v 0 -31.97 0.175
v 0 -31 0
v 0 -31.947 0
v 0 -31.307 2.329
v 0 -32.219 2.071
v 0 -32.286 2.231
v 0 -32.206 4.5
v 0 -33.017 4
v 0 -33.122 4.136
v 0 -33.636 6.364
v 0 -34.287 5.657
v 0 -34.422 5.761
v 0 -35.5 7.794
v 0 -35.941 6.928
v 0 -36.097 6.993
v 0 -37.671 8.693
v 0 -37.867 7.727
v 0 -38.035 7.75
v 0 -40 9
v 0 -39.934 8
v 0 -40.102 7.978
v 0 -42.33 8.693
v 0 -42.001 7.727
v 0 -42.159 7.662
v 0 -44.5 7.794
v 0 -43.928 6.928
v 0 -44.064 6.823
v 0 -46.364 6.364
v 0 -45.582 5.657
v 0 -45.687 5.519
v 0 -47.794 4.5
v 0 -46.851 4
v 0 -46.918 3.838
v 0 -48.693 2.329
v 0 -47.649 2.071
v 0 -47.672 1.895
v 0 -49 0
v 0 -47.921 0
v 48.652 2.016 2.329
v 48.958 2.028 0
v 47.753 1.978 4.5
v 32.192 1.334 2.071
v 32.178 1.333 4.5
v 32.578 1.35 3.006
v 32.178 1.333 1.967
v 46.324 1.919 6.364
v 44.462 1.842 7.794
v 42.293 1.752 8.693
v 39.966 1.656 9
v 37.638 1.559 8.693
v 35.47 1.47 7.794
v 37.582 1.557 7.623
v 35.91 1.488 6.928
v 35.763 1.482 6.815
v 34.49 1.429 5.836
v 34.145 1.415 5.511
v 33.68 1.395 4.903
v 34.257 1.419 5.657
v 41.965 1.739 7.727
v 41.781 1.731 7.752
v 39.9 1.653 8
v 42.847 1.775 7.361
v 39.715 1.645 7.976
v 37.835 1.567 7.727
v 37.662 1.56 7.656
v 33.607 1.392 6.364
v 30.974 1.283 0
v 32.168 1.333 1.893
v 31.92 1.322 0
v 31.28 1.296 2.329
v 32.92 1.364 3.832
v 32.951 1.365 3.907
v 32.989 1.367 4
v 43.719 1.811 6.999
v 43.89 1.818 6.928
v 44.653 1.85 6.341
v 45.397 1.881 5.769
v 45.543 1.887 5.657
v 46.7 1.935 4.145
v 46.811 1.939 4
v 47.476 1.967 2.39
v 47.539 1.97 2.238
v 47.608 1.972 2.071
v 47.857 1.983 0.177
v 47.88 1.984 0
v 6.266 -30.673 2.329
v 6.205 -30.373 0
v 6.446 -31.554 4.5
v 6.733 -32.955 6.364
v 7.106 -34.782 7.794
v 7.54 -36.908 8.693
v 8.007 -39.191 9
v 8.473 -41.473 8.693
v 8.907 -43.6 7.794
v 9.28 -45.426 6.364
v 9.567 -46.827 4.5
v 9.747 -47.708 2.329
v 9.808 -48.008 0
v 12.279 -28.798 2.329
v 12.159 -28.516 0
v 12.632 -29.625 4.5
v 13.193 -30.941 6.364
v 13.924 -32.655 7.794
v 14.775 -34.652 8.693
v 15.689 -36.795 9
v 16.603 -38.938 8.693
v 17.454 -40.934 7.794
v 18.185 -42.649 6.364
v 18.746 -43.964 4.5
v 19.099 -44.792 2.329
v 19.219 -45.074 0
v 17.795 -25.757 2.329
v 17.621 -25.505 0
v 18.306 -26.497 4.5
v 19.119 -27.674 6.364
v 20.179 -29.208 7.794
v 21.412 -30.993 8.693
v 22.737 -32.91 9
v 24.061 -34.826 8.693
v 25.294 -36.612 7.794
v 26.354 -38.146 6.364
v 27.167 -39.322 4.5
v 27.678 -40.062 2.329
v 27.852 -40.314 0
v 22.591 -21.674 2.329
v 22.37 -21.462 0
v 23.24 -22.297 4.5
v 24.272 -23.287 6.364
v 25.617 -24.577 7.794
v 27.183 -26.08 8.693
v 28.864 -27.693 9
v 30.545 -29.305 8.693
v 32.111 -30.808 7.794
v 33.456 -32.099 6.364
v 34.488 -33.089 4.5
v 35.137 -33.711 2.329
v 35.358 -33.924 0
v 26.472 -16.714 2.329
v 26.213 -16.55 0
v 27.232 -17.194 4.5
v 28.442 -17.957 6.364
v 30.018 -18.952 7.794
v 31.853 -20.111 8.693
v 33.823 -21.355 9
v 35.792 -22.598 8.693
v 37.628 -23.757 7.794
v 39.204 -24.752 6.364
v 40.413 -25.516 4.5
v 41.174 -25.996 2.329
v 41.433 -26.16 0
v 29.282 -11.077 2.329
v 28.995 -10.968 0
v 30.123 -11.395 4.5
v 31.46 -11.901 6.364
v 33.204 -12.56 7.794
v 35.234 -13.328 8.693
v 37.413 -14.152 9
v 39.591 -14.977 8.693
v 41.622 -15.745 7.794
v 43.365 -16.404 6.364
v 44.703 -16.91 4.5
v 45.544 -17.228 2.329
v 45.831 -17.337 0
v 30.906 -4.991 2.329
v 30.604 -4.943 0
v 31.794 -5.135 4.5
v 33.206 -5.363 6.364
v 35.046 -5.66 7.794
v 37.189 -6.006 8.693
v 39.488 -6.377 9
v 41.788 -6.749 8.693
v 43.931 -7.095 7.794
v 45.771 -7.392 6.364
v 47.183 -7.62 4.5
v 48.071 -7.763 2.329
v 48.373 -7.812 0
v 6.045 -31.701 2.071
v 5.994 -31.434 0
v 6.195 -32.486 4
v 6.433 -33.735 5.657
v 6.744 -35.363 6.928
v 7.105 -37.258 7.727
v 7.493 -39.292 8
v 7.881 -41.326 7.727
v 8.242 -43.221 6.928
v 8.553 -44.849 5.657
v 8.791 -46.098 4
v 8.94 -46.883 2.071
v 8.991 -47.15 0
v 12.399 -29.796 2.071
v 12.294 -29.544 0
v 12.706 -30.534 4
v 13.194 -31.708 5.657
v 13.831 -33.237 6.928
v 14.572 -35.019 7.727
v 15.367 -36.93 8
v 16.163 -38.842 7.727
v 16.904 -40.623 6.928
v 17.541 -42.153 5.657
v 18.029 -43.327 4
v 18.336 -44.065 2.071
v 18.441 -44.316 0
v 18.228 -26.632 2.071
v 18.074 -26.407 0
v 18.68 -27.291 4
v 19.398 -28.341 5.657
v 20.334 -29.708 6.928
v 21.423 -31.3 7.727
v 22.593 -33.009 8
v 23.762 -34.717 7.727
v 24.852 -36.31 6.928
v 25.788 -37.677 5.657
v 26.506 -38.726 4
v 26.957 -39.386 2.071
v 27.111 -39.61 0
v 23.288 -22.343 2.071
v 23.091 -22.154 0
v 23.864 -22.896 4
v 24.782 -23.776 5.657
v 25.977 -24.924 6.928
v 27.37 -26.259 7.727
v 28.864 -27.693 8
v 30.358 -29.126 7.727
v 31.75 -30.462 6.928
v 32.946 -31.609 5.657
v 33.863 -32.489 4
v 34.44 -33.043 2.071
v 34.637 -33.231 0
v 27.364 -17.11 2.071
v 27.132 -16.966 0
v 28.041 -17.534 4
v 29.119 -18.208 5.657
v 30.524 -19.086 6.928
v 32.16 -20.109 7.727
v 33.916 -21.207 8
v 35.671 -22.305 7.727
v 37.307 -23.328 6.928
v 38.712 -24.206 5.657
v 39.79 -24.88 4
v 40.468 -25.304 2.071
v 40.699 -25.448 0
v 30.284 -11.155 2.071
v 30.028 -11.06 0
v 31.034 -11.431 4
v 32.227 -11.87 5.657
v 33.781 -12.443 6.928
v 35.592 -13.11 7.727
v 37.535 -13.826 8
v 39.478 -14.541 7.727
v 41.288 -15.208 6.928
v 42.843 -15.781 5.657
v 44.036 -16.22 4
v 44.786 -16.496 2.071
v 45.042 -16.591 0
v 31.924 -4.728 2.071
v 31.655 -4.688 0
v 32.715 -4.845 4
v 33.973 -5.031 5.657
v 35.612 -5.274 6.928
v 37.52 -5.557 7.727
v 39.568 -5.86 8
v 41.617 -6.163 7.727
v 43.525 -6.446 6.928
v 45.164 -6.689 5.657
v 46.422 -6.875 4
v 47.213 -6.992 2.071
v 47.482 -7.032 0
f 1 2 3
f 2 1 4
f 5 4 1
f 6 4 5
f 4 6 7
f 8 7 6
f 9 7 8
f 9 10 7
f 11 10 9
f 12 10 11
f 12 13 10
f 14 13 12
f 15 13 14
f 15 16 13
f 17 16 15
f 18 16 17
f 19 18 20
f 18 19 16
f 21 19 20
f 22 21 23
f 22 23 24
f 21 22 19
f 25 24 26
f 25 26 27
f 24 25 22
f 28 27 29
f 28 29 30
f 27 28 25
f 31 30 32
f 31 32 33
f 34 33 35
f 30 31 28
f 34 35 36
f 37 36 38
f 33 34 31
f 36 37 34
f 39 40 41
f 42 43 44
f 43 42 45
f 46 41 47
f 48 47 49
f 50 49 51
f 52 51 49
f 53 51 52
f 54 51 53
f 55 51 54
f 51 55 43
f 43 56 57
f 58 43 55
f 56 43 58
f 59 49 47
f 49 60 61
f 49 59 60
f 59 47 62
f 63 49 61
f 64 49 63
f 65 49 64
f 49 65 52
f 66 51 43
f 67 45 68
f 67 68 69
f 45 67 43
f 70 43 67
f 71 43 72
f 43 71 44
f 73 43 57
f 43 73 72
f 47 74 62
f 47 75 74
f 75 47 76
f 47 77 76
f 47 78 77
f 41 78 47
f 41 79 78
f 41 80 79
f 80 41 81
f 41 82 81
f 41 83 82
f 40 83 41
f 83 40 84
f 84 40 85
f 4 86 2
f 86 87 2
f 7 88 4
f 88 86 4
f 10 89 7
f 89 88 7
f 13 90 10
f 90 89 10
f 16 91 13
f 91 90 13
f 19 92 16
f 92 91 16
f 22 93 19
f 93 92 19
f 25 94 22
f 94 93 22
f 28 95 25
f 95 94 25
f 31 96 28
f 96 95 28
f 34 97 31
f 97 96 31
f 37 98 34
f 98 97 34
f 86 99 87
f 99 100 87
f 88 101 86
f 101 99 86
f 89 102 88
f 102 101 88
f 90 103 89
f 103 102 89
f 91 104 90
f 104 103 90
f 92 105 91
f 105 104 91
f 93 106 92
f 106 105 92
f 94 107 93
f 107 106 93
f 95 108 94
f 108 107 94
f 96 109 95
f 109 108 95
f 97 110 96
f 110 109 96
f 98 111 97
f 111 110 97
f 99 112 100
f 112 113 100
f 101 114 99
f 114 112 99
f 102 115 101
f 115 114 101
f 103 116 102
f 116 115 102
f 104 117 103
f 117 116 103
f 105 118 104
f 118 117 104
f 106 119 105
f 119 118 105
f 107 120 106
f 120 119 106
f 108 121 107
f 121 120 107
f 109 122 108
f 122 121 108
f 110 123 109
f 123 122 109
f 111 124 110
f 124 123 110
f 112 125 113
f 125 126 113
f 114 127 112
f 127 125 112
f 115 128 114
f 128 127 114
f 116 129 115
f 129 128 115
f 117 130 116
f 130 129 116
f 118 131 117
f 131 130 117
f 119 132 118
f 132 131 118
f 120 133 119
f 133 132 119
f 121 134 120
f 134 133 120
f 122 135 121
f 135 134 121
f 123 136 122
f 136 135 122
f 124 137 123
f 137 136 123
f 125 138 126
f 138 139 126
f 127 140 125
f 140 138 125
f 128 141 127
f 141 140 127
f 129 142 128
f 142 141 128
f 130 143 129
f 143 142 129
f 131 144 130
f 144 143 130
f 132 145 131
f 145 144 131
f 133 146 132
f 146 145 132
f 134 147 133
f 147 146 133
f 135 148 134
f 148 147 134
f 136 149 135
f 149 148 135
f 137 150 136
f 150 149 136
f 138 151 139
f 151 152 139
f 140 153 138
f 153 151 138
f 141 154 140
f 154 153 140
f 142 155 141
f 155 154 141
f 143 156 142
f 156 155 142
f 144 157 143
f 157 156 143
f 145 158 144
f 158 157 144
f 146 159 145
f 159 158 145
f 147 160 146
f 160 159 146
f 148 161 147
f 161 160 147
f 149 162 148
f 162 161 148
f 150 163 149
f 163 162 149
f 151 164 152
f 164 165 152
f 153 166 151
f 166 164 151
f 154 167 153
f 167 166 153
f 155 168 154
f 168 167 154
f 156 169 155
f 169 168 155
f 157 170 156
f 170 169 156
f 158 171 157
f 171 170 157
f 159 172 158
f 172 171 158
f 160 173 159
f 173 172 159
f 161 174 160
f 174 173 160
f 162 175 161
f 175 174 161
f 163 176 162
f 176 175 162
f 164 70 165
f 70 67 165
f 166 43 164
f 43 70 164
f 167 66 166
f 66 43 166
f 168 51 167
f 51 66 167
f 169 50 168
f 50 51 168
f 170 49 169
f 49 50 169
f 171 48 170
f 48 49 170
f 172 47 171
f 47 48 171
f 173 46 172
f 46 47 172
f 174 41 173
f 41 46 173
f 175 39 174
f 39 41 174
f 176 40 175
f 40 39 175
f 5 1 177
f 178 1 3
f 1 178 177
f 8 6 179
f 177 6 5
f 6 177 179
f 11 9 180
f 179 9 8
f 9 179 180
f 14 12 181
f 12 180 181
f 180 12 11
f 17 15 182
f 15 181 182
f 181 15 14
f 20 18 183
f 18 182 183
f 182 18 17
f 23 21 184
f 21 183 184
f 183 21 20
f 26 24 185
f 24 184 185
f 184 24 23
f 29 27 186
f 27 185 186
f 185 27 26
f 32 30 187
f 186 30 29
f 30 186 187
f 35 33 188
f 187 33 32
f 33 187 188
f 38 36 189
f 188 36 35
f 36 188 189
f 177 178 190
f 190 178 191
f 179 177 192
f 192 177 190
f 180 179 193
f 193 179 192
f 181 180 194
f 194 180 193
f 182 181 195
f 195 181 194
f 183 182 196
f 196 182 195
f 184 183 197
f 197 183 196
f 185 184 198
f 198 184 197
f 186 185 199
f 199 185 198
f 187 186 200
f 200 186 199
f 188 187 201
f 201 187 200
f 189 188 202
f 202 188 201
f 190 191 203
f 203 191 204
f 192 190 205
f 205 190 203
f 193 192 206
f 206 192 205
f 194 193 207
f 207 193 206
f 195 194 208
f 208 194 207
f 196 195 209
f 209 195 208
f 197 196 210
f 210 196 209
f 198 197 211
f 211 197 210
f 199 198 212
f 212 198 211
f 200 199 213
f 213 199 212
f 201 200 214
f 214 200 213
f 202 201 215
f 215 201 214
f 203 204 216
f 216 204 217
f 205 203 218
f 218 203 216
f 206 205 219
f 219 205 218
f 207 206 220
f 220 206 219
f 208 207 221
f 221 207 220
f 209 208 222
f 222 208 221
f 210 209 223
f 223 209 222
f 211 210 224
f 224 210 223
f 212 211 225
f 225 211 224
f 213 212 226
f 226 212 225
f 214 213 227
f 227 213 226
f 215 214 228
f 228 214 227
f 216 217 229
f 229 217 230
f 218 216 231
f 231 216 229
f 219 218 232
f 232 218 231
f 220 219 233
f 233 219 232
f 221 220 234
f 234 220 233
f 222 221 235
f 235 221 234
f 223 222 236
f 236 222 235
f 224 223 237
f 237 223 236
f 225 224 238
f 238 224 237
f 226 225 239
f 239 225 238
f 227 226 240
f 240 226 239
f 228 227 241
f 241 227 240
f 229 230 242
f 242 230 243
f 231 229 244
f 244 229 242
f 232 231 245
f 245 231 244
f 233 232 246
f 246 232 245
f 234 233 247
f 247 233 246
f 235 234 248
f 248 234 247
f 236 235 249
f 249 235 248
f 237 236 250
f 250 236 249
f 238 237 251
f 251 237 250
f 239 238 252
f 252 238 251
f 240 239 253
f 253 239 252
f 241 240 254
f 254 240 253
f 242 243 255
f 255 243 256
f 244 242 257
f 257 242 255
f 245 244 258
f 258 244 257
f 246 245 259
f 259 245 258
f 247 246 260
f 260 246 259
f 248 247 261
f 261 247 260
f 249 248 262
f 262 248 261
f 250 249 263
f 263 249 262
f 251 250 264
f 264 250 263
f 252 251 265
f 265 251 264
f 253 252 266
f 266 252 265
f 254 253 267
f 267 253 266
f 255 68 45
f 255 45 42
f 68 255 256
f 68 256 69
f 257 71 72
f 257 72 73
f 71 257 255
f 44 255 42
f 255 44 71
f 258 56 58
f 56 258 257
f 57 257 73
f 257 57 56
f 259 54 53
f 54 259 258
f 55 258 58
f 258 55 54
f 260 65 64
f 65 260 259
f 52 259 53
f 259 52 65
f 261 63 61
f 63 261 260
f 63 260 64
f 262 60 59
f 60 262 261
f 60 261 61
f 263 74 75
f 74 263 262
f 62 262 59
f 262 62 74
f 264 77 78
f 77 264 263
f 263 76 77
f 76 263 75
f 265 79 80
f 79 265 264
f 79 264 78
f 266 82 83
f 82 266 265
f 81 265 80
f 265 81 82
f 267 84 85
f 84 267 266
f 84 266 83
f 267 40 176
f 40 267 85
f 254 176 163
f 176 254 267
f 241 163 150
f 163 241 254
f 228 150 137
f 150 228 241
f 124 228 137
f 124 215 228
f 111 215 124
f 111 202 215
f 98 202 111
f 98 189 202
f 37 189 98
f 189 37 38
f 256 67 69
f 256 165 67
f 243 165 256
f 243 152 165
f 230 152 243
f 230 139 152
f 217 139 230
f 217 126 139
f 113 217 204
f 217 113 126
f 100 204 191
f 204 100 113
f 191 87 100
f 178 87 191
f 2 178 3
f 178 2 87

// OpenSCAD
// file: ../build_environments.scad
// build_environments.scad: modules to build level sections
//

module pool(diameter=10.0, wall_height=2.0, step_width=3.0, connections=[])
{
    difference() {
        union() {
        difference() {
            cylinder(h=0.5,r1=diameter+step_width,r2=diameter+step_width,$fn=48);
            translate([0,0,-0.1])
                cylinder(h=0.7,r1=diameter,r2=diameter,$fn=48);
        }
        difference() {
            cylinder(h=wall_height,r1=diameter+step_width+1.0,r2=diameter+step_width+1.0,$fn=48);
            translate([0,0,-0.1])
                cylinder(h=wall_height+0.2,r1=diameter+step_width,r2=diameter+step_width,$fn=48);
        }
        }
    
        for (c = connections)
        {
            rotate([0,90,0]) {
                angle = atan2(c[1],c[0]);
                rotate([-angle,0,0]) {
                    cylinder(h=diameter+5.0,r1=c[2],r2=c[2],$fn=48);
                }
            }
        }
    }
}

module straight(length=10.0, width=2.0, dy1=0.0, dy2=0.0, dz=0.0)
{
    dims = [0, 0, 0, 0, 0, (dz/length)];
    matrix = [
        [ 1, dims[0], dims[1], 0 ],
        [ dims[2], 1, dims[4], 0 ],
        [ dims[5], dims[3], 1, 0 ],
        [ 0, 0, 0, 1 ]
    ];
    multmatrix(matrix)
    difference() {
        translate([dy1,0,0])
        union() {
            rotate([0,90,0]) {
                difference() {
                    cylinder(h=(length-dy1-dy2),r1=width+1.0,r2=width+1.0,$fn=24);
                    translate([0,0,-0.1])
                        cylinder(h=(length-dy1-dy2+0.2),r1=width,r2=width,$fn=24);
                }
                difference() {
                    cylinder(h=1.0,r1=width+2.0,r2=width+2.0,$fn=24);
                    translate([0,0,-0.1])
                        cylinder(h=1.2,r1=width,r2=width,$fn=24);
                }
                translate([0,0,(length-dy1-dy2)-1.0]) {
                    difference() {
                        cylinder(h=1.0,r1=width+2.0,r2=width+2.0,$fn=24);
                        translate([0,0,-0.1])
                            cylinder(h=1.2,r1=width,r2=width,$fn=24);
                    }
                }
            }
        }
        translate([0,0,-(2*width+4.0)/2])
            cube([3*length,3*length,2*width+4.0],center=true);
    }
}

module curve(p0=[0,0], center=[0,0], dir=1, angle=0.0, width=2.0)
{
    radius = sqrt((p0[0]-center[0])*(p0[0]-center[0]) + (p0[1]-center[1])*(p0[1]-center[1]));
    if (dir == 0) {
        difference() {
            rotate([0,0,-90])
            difference() {
                rotate_extrude(angle = angle, convexity = 10, $fn=32)
                    translate([radius, 0, 0])
                        circle(r = width+1.0,$fn=24);
                rotate([0,0,-1.0])
                    rotate_extrude(angle = angle+2.0, convexity = 10, $fn=32)
                        translate([radius, 0, 0])
                            circle(r = width,$fn=24);
            }
            translate([0,0,-(2*width+4.0)/2])
                cube([5*radius,5*radius,2*width+4.0],center=true);
        }
    }
    else {
        difference() {
            rotate([0,0,90])
            difference() {
                rotate_extrude(angle = -angle, convexity = 10, $fn=32)
                    translate([radius, 0, 0])
                        circle(r = width+1.0,$fn=24);
                rotate([0,0,1.0])
                    rotate_extrude(angle = -angle-2.0, convexity = 10, $fn=32)
                        translate([radius, 0, 0])
                            circle(r = width,$fn=24);
            }
            translate([0,0,-(2*width+4.0)/2])
                cube([5*radius,5*radius,2*width+4.0],center=true);
        }
    }

}

// test pool
//pool(diameter=12.0000, wall_height=3.0000, step_width=3.0000, connections=[[0.0000,-26.0000,2.0000], [23.6074,0.0000,2.0000]]);

// test straight, slope
//straight(length=26.0000, width=2.0000, dy1=11.8322, dy2=6.7082, dz=0.0000);
//straight(length=29.1549, width=12.0000, dy1=0.0000, dy2=0.0000, dz=-15.0000);

// test curve
//curve(p0=[23.6074, 0.0000], center=[23.6074, 5.0000], dir=0, angle=60.1011, width=2.0000);
//curve(p0=[33.6426, 12.4219], center=[37.9771, 9.9295], dir=1, angle=120.4627, width=2.0000);
// main file
use <../build_environments.scad>;
curve(p0=[172.8157, 27.0986], center=[185.6228, 64.9930], dir=0, angle=92.3724, width=8.0000);
